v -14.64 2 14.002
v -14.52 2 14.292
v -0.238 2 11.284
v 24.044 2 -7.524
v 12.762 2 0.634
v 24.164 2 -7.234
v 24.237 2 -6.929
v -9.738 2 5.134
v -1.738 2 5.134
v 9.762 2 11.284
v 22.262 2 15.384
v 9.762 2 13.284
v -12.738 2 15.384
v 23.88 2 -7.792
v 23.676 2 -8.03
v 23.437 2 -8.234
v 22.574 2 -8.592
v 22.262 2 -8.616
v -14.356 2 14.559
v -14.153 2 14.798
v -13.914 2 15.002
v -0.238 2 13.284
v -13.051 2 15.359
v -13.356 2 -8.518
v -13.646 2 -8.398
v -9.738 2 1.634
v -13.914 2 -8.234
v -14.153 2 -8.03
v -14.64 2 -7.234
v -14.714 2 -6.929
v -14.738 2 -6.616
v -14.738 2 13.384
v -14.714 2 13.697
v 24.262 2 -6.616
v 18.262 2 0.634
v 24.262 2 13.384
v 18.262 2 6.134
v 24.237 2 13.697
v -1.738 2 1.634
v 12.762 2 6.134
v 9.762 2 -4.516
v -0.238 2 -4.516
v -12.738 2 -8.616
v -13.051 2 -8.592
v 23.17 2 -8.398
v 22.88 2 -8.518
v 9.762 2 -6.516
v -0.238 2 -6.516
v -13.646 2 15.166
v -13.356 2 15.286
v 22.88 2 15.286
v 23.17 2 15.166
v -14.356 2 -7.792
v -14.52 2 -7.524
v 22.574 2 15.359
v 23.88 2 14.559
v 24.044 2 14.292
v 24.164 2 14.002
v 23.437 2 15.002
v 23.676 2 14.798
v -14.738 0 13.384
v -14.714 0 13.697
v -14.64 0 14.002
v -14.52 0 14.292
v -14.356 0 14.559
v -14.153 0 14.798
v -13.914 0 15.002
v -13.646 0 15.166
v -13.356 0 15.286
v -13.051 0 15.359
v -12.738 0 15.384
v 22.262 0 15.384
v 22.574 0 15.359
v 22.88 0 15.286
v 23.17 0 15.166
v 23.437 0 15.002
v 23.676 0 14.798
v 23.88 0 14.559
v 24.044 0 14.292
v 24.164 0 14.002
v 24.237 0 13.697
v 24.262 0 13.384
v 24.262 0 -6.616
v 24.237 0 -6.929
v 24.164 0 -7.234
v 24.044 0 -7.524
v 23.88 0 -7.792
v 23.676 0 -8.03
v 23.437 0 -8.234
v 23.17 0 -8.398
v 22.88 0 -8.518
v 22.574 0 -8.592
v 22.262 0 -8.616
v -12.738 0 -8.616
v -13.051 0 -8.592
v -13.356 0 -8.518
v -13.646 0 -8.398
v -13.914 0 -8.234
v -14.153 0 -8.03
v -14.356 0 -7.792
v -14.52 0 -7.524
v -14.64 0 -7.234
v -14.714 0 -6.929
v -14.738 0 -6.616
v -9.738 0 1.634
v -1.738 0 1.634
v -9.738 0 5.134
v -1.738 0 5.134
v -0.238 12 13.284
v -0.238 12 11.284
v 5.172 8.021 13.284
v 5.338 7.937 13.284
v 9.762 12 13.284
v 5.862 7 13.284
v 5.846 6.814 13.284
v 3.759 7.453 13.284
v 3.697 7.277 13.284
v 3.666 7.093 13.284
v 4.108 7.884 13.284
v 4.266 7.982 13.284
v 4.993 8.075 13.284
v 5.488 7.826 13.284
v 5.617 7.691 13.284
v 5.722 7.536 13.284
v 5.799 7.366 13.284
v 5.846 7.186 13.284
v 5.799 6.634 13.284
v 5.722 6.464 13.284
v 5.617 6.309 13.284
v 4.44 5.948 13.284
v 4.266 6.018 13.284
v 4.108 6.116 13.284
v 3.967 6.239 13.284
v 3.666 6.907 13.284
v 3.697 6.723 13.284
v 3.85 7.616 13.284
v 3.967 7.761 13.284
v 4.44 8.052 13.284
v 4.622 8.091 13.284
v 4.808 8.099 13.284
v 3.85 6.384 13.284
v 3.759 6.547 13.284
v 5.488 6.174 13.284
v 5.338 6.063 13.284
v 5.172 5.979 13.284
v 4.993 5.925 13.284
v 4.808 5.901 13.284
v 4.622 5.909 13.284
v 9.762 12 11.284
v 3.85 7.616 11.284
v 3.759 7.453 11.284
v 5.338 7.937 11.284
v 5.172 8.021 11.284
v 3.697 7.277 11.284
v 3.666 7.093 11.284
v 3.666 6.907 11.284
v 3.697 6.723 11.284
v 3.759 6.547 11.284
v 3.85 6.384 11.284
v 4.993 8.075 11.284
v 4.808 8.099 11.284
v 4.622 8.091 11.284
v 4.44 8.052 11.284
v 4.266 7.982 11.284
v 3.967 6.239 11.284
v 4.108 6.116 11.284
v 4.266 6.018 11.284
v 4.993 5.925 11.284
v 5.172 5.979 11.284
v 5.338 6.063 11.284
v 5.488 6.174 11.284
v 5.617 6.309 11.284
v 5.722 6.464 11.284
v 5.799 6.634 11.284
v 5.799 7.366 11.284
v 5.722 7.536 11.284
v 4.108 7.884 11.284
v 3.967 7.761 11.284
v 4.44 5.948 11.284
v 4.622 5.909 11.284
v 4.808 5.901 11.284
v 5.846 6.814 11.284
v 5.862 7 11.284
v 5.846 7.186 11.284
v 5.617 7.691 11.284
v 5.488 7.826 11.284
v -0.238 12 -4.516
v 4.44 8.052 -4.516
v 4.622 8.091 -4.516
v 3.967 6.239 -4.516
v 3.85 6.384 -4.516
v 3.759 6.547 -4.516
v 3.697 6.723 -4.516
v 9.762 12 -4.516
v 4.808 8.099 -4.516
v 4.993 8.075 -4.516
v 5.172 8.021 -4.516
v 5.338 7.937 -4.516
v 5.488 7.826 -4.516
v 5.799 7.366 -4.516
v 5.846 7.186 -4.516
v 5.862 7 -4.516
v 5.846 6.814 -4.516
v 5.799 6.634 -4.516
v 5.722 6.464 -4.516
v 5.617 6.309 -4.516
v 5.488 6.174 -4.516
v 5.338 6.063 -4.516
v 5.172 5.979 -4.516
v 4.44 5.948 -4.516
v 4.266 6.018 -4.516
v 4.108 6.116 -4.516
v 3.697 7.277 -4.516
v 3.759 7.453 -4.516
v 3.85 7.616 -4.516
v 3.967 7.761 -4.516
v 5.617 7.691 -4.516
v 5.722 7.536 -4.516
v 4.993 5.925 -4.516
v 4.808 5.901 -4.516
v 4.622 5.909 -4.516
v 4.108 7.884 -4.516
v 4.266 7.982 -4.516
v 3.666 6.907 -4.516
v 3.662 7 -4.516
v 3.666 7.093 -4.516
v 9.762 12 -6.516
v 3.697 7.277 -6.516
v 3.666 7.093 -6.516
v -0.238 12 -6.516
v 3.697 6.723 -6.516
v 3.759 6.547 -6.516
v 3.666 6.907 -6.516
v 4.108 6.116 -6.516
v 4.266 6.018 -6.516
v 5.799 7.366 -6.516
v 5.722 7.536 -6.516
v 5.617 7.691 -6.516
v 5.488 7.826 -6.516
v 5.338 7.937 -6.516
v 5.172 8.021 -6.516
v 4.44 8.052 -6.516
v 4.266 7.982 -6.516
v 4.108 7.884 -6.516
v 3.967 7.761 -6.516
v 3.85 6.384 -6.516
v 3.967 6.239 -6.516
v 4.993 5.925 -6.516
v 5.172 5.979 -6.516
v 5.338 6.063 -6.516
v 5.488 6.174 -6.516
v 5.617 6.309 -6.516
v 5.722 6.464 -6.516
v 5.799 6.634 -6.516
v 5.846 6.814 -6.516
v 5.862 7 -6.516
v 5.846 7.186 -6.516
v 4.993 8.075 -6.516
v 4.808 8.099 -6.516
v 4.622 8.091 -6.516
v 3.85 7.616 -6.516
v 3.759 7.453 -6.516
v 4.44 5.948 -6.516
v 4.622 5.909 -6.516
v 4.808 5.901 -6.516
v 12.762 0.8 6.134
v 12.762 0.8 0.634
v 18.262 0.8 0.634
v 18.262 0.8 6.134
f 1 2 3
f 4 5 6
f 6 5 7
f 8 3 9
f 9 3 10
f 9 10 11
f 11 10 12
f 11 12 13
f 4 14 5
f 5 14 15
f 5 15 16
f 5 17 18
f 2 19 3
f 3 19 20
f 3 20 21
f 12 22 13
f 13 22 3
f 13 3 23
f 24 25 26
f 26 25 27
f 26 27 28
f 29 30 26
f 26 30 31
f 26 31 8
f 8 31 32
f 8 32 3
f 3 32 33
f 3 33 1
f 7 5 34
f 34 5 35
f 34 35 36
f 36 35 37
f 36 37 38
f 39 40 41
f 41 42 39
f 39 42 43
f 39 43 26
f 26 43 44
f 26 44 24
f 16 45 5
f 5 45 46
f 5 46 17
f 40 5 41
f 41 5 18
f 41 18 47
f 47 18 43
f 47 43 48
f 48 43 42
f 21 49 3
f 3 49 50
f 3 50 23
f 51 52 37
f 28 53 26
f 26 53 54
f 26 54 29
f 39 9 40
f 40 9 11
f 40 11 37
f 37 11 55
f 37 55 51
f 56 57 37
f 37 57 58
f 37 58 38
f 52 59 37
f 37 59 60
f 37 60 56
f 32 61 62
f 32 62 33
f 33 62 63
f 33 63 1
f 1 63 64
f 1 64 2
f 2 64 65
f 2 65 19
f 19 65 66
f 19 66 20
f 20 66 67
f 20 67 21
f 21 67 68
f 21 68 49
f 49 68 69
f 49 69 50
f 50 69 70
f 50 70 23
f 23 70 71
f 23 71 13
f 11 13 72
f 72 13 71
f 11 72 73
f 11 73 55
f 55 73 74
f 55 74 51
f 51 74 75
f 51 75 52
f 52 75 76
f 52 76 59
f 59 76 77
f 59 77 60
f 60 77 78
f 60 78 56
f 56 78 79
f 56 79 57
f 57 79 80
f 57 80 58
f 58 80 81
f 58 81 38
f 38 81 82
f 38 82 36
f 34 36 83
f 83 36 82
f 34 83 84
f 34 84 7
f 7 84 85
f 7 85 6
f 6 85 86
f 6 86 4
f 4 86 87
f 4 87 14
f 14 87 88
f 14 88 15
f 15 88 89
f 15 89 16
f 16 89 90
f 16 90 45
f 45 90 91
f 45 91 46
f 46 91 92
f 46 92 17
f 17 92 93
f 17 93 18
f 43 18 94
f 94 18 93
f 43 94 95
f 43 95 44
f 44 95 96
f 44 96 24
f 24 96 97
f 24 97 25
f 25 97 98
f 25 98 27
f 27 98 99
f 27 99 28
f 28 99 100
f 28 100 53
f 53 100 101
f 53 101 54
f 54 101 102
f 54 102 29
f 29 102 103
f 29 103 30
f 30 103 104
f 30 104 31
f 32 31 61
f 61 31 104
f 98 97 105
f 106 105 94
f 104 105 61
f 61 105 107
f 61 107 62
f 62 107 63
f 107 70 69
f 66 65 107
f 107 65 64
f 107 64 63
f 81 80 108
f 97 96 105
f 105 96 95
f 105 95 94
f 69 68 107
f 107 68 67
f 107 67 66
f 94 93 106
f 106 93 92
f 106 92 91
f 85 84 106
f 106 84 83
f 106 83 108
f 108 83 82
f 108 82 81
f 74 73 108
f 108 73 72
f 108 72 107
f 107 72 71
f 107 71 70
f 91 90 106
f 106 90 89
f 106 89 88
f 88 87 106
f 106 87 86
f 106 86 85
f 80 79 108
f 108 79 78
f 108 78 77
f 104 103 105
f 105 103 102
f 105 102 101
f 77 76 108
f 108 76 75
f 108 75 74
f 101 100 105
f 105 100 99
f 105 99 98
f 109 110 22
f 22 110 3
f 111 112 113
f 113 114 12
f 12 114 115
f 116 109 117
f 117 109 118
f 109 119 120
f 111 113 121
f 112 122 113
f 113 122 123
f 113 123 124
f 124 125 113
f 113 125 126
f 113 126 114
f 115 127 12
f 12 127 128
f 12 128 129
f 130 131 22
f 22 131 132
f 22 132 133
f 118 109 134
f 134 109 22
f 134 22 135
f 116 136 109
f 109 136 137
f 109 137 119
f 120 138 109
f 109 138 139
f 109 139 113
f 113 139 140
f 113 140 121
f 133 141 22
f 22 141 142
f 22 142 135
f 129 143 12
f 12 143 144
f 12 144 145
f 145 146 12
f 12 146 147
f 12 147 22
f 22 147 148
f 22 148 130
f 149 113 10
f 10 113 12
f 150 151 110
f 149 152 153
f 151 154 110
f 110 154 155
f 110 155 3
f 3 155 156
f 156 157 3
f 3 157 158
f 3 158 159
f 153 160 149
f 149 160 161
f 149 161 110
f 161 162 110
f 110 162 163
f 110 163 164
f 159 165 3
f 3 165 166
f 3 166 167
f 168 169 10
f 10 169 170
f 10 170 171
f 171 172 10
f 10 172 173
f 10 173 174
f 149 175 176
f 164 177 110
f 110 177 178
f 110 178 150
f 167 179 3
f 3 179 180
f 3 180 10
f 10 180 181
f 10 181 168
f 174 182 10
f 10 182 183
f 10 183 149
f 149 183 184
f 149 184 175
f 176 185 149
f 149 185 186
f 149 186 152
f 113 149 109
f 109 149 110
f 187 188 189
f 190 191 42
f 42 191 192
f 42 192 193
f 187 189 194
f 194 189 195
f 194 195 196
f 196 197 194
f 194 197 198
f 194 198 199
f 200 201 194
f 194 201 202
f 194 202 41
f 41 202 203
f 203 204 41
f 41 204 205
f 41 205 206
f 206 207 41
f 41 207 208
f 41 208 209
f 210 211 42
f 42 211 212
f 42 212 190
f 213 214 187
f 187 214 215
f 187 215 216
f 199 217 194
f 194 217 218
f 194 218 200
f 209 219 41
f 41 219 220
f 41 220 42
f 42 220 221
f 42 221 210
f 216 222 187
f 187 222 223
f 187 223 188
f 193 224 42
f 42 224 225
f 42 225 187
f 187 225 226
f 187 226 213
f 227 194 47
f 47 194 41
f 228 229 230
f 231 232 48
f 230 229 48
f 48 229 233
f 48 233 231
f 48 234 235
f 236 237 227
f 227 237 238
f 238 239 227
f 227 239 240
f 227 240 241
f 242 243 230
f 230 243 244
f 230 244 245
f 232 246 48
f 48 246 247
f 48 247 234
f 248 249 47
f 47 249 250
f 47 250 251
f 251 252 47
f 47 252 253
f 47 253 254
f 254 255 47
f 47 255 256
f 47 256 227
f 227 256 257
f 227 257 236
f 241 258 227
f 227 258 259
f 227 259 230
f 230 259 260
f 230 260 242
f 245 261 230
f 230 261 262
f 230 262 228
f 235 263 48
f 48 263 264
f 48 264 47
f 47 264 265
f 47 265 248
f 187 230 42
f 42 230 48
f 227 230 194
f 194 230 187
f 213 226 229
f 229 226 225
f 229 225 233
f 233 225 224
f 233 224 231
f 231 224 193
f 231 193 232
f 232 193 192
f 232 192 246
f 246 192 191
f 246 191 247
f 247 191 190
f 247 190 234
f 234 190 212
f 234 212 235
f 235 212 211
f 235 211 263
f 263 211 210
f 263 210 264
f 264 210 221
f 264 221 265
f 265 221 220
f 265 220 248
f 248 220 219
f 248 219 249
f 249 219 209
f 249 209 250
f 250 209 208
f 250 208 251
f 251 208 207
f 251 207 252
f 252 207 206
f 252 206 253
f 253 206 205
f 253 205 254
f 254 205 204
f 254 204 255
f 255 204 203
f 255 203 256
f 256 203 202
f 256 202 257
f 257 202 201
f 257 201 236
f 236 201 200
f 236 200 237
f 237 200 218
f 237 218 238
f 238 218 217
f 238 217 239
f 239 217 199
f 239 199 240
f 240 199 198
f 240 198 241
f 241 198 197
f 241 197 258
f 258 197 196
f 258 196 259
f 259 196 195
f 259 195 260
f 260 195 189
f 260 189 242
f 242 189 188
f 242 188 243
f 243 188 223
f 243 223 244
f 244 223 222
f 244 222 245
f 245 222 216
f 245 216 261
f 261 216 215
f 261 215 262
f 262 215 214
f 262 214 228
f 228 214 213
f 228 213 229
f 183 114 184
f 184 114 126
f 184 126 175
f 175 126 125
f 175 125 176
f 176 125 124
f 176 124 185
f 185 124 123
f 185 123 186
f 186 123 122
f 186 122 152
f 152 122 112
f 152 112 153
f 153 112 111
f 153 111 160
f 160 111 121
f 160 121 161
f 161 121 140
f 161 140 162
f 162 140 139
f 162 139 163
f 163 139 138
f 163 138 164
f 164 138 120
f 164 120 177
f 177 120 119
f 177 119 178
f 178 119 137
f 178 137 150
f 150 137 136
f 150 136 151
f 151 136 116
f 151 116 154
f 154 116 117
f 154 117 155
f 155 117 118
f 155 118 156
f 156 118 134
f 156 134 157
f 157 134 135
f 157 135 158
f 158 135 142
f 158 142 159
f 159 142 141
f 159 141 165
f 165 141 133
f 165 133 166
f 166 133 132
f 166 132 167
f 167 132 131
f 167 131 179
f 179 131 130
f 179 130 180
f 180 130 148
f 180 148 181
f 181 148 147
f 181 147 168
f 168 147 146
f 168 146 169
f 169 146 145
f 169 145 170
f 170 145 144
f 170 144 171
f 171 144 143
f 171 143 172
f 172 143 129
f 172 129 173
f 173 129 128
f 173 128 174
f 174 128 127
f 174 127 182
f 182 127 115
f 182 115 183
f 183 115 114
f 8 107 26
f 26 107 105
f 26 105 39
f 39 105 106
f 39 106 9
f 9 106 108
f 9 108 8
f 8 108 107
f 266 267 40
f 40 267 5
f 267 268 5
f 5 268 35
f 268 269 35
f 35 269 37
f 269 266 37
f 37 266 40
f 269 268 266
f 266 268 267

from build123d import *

# Parameters (mm, degrees)
Y_KSEKLIK_EKSTR_ZYON1_DEPTH = 2
IZIM2_W                     = 10
IZIM2_H                     = 2
Y_KSEKLIK_EKSTR_ZYON2_DEPTH = 10
IZIM3_R                     = 1.1
KES_EKSTR_ZYON1_DEPTH       = 30
IZIM4_W                     = 8
IZIM4_H                     = 3.5
KES_EKSTR_ZYON2_DEPTH       = 30
IZIM5_W                     = 5.5
IZIM5_H                     = 5.5
KES_EKSTR_ZYON3_DEPTH       = 1.2


with BuildPart() as part:
    # Çizim1 → Yükseklik-Ekstrüzyon1 (new body)
    with BuildSketch(Plane(origin=(0, 0, 0), x_dir=(1, 0, 0), z_dir=(0, 1, 0))):
        with BuildLine():
            Line((-12.738372093, 8.61627907), (22.261627907, 8.61627907))
            ThreePointArc((22.261627907, 8.61627907), (23.675841469, 8.030492632), (24.261627907, 6.61627907))
            Line((24.261627907, 6.61627907), (24.261627907, -13.38372093))
            ThreePointArc((24.261627907, -13.38372093), (23.675841469, -14.797934493), (22.261627907, -15.38372093))
            Line((22.261627907, -15.38372093), (-12.738372093, -15.38372093))
            ThreePointArc((-12.738372093, -15.38372093), (-14.152585655, -14.797934493), (-14.738372093, -13.38372093))
            Line((-14.738372093, -13.38372093), (-14.738372093, 6.61627907))
            ThreePointArc((-14.738372093, 6.61627907), (-14.152585655, 8.030492632), (-12.738372093, 8.61627907))
        make_face()
    extrude(amount=Y_KSEKLIK_EKSTR_ZYON1_DEPTH)

    # Çizim2 → Yükseklik-Ekstrüzyon2 (add)
    with BuildSketch(Plane(origin=(0, 2, 0), x_dir=(1, 0, 0), z_dir=(0, 1, 0))):
        with Locations((4.761627907, -12.28372093)):
            Rectangle(IZIM2_W, IZIM2_H)
        with Locations((4.761627907, 5.51627907)):
            Rectangle(IZIM2_W, IZIM2_H)
    extrude(amount=Y_KSEKLIK_EKSTR_ZYON2_DEPTH)

    # Çizim3 → Kes-Ekstrüzyon1 (cut)
    with BuildSketch(Plane.XY.offset(13.28372093)):
        with Locations((4.761627907, 7)):
            Circle(IZIM3_R)
    extrude(amount=-KES_EKSTR_ZYON1_DEPTH, mode=Mode.SUBTRACT)

    # Çizim4 → Kes-Ekstrüzyon2 (cut)
    with BuildSketch(Plane(origin=(0, 2, 0), x_dir=(1, 0, 0), z_dir=(0, 1, 0))):
        with Locations((-5.738372093, -3.38372093)):
            Rectangle(IZIM4_W, IZIM4_H)
    extrude(amount=-KES_EKSTR_ZYON2_DEPTH, mode=Mode.SUBTRACT)

    # Çizim5 → Kes-Ekstrüzyon3 (cut)
    with BuildSketch(Plane(origin=(0, 2, 0), x_dir=(1, 0, 0), z_dir=(0, 1, 0))):
        with Locations((15.511627907, -3.38372093)):
            Rectangle(IZIM5_W, IZIM5_H)
    extrude(amount=-KES_EKSTR_ZYON3_DEPTH, mode=Mode.SUBTRACT)


solid = part.part
